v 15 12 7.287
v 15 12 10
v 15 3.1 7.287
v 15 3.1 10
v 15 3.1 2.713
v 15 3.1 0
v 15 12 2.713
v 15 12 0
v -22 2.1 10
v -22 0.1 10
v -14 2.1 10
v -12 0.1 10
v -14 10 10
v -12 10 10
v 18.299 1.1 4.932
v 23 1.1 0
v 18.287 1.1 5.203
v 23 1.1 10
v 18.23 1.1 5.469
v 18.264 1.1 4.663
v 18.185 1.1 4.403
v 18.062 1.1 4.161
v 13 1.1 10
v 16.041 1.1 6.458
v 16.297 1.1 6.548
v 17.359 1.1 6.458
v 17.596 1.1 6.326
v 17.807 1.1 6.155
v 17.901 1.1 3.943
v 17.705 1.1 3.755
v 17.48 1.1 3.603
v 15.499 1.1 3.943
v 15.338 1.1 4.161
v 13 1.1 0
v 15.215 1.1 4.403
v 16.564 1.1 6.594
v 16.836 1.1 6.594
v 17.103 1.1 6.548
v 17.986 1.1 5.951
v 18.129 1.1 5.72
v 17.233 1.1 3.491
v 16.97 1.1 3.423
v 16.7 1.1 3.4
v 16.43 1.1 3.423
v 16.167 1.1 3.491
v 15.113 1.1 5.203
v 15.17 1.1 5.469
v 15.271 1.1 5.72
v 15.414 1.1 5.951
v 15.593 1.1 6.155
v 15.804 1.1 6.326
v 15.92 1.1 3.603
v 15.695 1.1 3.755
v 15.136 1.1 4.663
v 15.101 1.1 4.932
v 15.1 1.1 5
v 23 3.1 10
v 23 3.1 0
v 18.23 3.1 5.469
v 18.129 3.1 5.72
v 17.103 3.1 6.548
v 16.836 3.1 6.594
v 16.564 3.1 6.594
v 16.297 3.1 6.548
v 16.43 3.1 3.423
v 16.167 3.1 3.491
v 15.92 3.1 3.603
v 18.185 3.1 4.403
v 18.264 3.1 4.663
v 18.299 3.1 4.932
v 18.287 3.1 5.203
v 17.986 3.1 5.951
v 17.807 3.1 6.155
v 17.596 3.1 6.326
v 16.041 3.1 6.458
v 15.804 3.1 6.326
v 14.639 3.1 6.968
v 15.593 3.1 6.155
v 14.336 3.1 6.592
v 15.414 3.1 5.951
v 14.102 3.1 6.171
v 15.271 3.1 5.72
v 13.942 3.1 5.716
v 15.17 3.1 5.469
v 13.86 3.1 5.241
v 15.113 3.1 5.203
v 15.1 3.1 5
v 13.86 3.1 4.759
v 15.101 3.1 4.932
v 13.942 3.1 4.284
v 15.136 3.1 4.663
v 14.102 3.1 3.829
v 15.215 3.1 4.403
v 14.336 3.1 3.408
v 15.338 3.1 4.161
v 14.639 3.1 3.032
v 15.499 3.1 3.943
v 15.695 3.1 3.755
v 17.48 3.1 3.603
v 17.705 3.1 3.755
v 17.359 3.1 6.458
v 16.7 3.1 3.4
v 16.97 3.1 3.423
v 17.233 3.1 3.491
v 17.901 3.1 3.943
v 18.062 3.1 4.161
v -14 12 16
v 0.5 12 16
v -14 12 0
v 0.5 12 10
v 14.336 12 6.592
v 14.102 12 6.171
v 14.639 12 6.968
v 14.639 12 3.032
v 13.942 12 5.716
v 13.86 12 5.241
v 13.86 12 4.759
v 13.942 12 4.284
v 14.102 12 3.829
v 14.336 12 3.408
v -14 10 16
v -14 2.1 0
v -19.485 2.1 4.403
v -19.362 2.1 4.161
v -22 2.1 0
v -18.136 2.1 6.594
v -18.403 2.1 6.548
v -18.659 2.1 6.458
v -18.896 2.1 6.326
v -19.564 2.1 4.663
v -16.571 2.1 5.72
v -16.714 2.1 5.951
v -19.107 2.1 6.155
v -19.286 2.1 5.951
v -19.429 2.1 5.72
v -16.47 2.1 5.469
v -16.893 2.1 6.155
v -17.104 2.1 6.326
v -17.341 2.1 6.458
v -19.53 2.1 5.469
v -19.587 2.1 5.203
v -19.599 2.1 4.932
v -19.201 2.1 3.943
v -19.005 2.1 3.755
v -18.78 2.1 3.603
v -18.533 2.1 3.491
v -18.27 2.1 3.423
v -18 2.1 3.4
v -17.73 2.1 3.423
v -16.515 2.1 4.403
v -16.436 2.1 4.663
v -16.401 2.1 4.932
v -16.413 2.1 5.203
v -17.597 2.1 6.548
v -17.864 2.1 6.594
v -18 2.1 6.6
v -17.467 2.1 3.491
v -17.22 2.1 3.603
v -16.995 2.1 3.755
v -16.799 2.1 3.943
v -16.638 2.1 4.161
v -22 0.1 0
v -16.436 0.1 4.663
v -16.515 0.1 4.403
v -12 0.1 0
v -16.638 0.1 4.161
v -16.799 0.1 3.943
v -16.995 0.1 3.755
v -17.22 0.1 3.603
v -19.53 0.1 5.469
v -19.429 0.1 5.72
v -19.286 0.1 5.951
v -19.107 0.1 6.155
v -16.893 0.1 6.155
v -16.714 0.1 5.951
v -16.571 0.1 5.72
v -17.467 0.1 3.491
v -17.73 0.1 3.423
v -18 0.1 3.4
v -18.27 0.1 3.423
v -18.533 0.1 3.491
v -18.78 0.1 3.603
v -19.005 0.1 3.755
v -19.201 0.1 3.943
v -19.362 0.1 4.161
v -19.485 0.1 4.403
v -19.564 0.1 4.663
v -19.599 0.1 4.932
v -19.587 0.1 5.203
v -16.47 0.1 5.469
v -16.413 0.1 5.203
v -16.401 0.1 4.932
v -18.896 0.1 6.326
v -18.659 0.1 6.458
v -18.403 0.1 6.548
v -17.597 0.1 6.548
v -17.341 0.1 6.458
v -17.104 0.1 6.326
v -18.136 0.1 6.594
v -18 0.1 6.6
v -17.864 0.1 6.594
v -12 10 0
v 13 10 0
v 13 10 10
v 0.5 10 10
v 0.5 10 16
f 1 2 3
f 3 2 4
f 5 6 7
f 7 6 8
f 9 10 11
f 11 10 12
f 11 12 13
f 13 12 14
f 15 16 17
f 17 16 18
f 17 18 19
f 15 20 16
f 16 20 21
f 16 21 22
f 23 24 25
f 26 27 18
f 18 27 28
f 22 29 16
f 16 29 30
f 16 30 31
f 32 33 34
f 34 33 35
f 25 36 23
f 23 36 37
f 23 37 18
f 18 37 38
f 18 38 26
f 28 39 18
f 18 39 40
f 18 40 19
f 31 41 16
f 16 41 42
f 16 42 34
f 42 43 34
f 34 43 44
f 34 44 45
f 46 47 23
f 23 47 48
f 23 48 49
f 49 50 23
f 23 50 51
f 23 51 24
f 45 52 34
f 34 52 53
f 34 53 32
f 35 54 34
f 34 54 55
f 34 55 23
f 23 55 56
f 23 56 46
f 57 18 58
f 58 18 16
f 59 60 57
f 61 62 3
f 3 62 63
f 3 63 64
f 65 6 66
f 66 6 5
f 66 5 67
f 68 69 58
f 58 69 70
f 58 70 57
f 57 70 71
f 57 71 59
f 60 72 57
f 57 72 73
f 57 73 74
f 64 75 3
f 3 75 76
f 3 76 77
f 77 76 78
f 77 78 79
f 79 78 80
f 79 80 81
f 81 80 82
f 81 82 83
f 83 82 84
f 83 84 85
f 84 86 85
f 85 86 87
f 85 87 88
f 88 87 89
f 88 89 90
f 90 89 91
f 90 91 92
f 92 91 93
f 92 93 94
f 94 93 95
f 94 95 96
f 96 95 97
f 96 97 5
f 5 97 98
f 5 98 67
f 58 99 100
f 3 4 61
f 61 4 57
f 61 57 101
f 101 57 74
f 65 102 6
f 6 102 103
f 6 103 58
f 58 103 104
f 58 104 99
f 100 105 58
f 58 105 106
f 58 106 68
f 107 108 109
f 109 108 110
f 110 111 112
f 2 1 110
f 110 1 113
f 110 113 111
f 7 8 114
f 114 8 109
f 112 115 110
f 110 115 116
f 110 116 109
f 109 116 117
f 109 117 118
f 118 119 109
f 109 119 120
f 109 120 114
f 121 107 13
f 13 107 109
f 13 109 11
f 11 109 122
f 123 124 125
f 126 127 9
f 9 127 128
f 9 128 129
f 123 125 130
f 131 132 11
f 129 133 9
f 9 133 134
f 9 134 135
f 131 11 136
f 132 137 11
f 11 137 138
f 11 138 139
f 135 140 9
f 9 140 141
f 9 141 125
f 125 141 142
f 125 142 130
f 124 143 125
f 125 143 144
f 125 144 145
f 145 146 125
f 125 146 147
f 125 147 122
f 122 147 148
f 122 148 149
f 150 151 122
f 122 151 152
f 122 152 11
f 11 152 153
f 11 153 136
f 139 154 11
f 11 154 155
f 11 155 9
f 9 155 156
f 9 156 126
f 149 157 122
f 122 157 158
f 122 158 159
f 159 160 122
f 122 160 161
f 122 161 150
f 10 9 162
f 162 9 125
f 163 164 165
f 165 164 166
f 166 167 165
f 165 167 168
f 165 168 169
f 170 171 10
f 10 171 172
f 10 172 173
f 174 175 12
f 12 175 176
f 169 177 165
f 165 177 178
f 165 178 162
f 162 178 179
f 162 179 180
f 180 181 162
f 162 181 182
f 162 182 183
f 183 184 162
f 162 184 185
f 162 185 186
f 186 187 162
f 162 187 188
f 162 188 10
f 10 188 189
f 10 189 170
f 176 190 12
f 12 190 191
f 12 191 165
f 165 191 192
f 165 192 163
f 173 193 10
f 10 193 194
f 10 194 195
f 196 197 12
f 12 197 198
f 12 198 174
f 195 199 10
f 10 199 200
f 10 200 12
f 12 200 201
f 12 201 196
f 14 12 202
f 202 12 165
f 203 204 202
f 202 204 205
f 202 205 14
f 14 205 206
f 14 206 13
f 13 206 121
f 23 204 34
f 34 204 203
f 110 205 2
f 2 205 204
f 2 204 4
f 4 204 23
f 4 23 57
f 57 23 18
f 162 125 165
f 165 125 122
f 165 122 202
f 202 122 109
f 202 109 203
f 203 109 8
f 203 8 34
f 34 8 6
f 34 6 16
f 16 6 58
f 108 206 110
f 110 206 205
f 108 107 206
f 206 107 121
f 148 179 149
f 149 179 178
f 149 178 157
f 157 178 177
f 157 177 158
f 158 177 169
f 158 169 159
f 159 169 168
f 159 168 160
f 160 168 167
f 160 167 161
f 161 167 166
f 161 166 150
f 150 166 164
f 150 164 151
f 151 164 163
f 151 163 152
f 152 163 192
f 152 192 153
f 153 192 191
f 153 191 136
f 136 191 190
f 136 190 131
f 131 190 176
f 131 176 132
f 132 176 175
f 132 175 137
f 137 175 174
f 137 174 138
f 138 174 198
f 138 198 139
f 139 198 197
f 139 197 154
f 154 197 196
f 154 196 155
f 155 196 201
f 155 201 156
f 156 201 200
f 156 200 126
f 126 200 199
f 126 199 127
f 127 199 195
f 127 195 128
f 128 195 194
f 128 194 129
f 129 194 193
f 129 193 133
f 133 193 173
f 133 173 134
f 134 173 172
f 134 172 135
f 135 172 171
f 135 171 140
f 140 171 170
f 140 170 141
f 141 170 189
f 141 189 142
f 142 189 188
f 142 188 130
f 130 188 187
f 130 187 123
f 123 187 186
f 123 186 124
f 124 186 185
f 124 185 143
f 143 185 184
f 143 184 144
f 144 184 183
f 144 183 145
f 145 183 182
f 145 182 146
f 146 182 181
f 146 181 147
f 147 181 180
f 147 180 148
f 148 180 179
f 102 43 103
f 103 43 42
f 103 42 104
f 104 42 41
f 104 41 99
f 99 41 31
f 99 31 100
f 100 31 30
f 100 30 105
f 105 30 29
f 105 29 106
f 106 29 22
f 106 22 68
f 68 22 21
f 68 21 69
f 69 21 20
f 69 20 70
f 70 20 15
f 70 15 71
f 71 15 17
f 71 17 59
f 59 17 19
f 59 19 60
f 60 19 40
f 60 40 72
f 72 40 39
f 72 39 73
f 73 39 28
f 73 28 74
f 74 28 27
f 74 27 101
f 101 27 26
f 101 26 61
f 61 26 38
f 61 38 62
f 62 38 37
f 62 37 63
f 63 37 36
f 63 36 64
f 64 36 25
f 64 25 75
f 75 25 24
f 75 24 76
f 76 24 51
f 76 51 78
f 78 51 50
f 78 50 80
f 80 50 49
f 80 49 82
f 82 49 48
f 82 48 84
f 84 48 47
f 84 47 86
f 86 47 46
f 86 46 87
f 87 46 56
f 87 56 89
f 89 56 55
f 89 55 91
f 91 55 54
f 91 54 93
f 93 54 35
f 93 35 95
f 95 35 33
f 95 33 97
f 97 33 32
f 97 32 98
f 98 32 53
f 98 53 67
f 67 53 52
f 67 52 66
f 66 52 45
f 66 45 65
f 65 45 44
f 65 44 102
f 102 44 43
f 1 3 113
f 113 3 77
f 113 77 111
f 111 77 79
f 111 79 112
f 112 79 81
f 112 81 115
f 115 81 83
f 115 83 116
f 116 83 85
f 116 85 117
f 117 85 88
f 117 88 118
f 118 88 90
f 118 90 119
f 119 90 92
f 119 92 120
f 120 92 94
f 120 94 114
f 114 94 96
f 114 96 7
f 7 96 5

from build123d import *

# Parameters (mm, degrees)
MOUNT_DEPTH            = 10
IZIM5_W                = 14.5
IZIM5_H                = 2
MOTOR_ST_DEPTH         = 6
C_VATA_START           = -2
IZIM6_R                = 1.6
C_VATA_DELIKLERI_DEPTH = 6
IZIM7_R                = 2.85
KES_EKSTR_ZYON1_DEPTH  = 8.9


with BuildPart() as part:
    # Çizim4 → mount (new body)
    with BuildSketch(Plane.XY):
        Polygon((-22, 2.1), (-14, 2.1), (-14, 12), (15, 12), (15, 3.1), (23, 3.1), (23, 1.1), (13, 1.1), (13, 10), (-12, 10), (-12, 0.1), (-22, 0.1), align=None)
    extrude(amount=MOUNT_DEPTH)

    # Çizim5 → motor üstü (add)
    with BuildSketch(Plane.XY.offset(10)):
        with Locations((-6.75, 11)):
            Rectangle(IZIM5_W, IZIM5_H)
    extrude(amount=MOTOR_ST_DEPTH)

    # Çizim6 → cıvata delikleri (cut)
    with BuildSketch(Plane(origin=(0, 2.1, 0), x_dir=(1, 0, 0), z_dir=(0, 1, 0)).offset(C_VATA_START)):
        with Locations(Location((-18, -5, 0), (0, 0, 270))):
            Circle(IZIM6_R)
        with Locations(Location((16.7, -5, 0), (0, 0, 180))):
            Circle(IZIM6_R)
    extrude(amount=C_VATA_DELIKLERI_DEPTH, mode=Mode.SUBTRACT)

    # Çizim7 → Kes-Ekstrüzyon1 (cut)
    with BuildSketch(Plane(origin=(0, 3.1, 0), x_dir=(1, 0, 0), z_dir=(0, 1, 0))):
        with Locations((16.7, -5)):
            Circle(IZIM7_R)
    extrude(amount=KES_EKSTR_ZYON1_DEPTH, mode=Mode.SUBTRACT)


solid = part.part
